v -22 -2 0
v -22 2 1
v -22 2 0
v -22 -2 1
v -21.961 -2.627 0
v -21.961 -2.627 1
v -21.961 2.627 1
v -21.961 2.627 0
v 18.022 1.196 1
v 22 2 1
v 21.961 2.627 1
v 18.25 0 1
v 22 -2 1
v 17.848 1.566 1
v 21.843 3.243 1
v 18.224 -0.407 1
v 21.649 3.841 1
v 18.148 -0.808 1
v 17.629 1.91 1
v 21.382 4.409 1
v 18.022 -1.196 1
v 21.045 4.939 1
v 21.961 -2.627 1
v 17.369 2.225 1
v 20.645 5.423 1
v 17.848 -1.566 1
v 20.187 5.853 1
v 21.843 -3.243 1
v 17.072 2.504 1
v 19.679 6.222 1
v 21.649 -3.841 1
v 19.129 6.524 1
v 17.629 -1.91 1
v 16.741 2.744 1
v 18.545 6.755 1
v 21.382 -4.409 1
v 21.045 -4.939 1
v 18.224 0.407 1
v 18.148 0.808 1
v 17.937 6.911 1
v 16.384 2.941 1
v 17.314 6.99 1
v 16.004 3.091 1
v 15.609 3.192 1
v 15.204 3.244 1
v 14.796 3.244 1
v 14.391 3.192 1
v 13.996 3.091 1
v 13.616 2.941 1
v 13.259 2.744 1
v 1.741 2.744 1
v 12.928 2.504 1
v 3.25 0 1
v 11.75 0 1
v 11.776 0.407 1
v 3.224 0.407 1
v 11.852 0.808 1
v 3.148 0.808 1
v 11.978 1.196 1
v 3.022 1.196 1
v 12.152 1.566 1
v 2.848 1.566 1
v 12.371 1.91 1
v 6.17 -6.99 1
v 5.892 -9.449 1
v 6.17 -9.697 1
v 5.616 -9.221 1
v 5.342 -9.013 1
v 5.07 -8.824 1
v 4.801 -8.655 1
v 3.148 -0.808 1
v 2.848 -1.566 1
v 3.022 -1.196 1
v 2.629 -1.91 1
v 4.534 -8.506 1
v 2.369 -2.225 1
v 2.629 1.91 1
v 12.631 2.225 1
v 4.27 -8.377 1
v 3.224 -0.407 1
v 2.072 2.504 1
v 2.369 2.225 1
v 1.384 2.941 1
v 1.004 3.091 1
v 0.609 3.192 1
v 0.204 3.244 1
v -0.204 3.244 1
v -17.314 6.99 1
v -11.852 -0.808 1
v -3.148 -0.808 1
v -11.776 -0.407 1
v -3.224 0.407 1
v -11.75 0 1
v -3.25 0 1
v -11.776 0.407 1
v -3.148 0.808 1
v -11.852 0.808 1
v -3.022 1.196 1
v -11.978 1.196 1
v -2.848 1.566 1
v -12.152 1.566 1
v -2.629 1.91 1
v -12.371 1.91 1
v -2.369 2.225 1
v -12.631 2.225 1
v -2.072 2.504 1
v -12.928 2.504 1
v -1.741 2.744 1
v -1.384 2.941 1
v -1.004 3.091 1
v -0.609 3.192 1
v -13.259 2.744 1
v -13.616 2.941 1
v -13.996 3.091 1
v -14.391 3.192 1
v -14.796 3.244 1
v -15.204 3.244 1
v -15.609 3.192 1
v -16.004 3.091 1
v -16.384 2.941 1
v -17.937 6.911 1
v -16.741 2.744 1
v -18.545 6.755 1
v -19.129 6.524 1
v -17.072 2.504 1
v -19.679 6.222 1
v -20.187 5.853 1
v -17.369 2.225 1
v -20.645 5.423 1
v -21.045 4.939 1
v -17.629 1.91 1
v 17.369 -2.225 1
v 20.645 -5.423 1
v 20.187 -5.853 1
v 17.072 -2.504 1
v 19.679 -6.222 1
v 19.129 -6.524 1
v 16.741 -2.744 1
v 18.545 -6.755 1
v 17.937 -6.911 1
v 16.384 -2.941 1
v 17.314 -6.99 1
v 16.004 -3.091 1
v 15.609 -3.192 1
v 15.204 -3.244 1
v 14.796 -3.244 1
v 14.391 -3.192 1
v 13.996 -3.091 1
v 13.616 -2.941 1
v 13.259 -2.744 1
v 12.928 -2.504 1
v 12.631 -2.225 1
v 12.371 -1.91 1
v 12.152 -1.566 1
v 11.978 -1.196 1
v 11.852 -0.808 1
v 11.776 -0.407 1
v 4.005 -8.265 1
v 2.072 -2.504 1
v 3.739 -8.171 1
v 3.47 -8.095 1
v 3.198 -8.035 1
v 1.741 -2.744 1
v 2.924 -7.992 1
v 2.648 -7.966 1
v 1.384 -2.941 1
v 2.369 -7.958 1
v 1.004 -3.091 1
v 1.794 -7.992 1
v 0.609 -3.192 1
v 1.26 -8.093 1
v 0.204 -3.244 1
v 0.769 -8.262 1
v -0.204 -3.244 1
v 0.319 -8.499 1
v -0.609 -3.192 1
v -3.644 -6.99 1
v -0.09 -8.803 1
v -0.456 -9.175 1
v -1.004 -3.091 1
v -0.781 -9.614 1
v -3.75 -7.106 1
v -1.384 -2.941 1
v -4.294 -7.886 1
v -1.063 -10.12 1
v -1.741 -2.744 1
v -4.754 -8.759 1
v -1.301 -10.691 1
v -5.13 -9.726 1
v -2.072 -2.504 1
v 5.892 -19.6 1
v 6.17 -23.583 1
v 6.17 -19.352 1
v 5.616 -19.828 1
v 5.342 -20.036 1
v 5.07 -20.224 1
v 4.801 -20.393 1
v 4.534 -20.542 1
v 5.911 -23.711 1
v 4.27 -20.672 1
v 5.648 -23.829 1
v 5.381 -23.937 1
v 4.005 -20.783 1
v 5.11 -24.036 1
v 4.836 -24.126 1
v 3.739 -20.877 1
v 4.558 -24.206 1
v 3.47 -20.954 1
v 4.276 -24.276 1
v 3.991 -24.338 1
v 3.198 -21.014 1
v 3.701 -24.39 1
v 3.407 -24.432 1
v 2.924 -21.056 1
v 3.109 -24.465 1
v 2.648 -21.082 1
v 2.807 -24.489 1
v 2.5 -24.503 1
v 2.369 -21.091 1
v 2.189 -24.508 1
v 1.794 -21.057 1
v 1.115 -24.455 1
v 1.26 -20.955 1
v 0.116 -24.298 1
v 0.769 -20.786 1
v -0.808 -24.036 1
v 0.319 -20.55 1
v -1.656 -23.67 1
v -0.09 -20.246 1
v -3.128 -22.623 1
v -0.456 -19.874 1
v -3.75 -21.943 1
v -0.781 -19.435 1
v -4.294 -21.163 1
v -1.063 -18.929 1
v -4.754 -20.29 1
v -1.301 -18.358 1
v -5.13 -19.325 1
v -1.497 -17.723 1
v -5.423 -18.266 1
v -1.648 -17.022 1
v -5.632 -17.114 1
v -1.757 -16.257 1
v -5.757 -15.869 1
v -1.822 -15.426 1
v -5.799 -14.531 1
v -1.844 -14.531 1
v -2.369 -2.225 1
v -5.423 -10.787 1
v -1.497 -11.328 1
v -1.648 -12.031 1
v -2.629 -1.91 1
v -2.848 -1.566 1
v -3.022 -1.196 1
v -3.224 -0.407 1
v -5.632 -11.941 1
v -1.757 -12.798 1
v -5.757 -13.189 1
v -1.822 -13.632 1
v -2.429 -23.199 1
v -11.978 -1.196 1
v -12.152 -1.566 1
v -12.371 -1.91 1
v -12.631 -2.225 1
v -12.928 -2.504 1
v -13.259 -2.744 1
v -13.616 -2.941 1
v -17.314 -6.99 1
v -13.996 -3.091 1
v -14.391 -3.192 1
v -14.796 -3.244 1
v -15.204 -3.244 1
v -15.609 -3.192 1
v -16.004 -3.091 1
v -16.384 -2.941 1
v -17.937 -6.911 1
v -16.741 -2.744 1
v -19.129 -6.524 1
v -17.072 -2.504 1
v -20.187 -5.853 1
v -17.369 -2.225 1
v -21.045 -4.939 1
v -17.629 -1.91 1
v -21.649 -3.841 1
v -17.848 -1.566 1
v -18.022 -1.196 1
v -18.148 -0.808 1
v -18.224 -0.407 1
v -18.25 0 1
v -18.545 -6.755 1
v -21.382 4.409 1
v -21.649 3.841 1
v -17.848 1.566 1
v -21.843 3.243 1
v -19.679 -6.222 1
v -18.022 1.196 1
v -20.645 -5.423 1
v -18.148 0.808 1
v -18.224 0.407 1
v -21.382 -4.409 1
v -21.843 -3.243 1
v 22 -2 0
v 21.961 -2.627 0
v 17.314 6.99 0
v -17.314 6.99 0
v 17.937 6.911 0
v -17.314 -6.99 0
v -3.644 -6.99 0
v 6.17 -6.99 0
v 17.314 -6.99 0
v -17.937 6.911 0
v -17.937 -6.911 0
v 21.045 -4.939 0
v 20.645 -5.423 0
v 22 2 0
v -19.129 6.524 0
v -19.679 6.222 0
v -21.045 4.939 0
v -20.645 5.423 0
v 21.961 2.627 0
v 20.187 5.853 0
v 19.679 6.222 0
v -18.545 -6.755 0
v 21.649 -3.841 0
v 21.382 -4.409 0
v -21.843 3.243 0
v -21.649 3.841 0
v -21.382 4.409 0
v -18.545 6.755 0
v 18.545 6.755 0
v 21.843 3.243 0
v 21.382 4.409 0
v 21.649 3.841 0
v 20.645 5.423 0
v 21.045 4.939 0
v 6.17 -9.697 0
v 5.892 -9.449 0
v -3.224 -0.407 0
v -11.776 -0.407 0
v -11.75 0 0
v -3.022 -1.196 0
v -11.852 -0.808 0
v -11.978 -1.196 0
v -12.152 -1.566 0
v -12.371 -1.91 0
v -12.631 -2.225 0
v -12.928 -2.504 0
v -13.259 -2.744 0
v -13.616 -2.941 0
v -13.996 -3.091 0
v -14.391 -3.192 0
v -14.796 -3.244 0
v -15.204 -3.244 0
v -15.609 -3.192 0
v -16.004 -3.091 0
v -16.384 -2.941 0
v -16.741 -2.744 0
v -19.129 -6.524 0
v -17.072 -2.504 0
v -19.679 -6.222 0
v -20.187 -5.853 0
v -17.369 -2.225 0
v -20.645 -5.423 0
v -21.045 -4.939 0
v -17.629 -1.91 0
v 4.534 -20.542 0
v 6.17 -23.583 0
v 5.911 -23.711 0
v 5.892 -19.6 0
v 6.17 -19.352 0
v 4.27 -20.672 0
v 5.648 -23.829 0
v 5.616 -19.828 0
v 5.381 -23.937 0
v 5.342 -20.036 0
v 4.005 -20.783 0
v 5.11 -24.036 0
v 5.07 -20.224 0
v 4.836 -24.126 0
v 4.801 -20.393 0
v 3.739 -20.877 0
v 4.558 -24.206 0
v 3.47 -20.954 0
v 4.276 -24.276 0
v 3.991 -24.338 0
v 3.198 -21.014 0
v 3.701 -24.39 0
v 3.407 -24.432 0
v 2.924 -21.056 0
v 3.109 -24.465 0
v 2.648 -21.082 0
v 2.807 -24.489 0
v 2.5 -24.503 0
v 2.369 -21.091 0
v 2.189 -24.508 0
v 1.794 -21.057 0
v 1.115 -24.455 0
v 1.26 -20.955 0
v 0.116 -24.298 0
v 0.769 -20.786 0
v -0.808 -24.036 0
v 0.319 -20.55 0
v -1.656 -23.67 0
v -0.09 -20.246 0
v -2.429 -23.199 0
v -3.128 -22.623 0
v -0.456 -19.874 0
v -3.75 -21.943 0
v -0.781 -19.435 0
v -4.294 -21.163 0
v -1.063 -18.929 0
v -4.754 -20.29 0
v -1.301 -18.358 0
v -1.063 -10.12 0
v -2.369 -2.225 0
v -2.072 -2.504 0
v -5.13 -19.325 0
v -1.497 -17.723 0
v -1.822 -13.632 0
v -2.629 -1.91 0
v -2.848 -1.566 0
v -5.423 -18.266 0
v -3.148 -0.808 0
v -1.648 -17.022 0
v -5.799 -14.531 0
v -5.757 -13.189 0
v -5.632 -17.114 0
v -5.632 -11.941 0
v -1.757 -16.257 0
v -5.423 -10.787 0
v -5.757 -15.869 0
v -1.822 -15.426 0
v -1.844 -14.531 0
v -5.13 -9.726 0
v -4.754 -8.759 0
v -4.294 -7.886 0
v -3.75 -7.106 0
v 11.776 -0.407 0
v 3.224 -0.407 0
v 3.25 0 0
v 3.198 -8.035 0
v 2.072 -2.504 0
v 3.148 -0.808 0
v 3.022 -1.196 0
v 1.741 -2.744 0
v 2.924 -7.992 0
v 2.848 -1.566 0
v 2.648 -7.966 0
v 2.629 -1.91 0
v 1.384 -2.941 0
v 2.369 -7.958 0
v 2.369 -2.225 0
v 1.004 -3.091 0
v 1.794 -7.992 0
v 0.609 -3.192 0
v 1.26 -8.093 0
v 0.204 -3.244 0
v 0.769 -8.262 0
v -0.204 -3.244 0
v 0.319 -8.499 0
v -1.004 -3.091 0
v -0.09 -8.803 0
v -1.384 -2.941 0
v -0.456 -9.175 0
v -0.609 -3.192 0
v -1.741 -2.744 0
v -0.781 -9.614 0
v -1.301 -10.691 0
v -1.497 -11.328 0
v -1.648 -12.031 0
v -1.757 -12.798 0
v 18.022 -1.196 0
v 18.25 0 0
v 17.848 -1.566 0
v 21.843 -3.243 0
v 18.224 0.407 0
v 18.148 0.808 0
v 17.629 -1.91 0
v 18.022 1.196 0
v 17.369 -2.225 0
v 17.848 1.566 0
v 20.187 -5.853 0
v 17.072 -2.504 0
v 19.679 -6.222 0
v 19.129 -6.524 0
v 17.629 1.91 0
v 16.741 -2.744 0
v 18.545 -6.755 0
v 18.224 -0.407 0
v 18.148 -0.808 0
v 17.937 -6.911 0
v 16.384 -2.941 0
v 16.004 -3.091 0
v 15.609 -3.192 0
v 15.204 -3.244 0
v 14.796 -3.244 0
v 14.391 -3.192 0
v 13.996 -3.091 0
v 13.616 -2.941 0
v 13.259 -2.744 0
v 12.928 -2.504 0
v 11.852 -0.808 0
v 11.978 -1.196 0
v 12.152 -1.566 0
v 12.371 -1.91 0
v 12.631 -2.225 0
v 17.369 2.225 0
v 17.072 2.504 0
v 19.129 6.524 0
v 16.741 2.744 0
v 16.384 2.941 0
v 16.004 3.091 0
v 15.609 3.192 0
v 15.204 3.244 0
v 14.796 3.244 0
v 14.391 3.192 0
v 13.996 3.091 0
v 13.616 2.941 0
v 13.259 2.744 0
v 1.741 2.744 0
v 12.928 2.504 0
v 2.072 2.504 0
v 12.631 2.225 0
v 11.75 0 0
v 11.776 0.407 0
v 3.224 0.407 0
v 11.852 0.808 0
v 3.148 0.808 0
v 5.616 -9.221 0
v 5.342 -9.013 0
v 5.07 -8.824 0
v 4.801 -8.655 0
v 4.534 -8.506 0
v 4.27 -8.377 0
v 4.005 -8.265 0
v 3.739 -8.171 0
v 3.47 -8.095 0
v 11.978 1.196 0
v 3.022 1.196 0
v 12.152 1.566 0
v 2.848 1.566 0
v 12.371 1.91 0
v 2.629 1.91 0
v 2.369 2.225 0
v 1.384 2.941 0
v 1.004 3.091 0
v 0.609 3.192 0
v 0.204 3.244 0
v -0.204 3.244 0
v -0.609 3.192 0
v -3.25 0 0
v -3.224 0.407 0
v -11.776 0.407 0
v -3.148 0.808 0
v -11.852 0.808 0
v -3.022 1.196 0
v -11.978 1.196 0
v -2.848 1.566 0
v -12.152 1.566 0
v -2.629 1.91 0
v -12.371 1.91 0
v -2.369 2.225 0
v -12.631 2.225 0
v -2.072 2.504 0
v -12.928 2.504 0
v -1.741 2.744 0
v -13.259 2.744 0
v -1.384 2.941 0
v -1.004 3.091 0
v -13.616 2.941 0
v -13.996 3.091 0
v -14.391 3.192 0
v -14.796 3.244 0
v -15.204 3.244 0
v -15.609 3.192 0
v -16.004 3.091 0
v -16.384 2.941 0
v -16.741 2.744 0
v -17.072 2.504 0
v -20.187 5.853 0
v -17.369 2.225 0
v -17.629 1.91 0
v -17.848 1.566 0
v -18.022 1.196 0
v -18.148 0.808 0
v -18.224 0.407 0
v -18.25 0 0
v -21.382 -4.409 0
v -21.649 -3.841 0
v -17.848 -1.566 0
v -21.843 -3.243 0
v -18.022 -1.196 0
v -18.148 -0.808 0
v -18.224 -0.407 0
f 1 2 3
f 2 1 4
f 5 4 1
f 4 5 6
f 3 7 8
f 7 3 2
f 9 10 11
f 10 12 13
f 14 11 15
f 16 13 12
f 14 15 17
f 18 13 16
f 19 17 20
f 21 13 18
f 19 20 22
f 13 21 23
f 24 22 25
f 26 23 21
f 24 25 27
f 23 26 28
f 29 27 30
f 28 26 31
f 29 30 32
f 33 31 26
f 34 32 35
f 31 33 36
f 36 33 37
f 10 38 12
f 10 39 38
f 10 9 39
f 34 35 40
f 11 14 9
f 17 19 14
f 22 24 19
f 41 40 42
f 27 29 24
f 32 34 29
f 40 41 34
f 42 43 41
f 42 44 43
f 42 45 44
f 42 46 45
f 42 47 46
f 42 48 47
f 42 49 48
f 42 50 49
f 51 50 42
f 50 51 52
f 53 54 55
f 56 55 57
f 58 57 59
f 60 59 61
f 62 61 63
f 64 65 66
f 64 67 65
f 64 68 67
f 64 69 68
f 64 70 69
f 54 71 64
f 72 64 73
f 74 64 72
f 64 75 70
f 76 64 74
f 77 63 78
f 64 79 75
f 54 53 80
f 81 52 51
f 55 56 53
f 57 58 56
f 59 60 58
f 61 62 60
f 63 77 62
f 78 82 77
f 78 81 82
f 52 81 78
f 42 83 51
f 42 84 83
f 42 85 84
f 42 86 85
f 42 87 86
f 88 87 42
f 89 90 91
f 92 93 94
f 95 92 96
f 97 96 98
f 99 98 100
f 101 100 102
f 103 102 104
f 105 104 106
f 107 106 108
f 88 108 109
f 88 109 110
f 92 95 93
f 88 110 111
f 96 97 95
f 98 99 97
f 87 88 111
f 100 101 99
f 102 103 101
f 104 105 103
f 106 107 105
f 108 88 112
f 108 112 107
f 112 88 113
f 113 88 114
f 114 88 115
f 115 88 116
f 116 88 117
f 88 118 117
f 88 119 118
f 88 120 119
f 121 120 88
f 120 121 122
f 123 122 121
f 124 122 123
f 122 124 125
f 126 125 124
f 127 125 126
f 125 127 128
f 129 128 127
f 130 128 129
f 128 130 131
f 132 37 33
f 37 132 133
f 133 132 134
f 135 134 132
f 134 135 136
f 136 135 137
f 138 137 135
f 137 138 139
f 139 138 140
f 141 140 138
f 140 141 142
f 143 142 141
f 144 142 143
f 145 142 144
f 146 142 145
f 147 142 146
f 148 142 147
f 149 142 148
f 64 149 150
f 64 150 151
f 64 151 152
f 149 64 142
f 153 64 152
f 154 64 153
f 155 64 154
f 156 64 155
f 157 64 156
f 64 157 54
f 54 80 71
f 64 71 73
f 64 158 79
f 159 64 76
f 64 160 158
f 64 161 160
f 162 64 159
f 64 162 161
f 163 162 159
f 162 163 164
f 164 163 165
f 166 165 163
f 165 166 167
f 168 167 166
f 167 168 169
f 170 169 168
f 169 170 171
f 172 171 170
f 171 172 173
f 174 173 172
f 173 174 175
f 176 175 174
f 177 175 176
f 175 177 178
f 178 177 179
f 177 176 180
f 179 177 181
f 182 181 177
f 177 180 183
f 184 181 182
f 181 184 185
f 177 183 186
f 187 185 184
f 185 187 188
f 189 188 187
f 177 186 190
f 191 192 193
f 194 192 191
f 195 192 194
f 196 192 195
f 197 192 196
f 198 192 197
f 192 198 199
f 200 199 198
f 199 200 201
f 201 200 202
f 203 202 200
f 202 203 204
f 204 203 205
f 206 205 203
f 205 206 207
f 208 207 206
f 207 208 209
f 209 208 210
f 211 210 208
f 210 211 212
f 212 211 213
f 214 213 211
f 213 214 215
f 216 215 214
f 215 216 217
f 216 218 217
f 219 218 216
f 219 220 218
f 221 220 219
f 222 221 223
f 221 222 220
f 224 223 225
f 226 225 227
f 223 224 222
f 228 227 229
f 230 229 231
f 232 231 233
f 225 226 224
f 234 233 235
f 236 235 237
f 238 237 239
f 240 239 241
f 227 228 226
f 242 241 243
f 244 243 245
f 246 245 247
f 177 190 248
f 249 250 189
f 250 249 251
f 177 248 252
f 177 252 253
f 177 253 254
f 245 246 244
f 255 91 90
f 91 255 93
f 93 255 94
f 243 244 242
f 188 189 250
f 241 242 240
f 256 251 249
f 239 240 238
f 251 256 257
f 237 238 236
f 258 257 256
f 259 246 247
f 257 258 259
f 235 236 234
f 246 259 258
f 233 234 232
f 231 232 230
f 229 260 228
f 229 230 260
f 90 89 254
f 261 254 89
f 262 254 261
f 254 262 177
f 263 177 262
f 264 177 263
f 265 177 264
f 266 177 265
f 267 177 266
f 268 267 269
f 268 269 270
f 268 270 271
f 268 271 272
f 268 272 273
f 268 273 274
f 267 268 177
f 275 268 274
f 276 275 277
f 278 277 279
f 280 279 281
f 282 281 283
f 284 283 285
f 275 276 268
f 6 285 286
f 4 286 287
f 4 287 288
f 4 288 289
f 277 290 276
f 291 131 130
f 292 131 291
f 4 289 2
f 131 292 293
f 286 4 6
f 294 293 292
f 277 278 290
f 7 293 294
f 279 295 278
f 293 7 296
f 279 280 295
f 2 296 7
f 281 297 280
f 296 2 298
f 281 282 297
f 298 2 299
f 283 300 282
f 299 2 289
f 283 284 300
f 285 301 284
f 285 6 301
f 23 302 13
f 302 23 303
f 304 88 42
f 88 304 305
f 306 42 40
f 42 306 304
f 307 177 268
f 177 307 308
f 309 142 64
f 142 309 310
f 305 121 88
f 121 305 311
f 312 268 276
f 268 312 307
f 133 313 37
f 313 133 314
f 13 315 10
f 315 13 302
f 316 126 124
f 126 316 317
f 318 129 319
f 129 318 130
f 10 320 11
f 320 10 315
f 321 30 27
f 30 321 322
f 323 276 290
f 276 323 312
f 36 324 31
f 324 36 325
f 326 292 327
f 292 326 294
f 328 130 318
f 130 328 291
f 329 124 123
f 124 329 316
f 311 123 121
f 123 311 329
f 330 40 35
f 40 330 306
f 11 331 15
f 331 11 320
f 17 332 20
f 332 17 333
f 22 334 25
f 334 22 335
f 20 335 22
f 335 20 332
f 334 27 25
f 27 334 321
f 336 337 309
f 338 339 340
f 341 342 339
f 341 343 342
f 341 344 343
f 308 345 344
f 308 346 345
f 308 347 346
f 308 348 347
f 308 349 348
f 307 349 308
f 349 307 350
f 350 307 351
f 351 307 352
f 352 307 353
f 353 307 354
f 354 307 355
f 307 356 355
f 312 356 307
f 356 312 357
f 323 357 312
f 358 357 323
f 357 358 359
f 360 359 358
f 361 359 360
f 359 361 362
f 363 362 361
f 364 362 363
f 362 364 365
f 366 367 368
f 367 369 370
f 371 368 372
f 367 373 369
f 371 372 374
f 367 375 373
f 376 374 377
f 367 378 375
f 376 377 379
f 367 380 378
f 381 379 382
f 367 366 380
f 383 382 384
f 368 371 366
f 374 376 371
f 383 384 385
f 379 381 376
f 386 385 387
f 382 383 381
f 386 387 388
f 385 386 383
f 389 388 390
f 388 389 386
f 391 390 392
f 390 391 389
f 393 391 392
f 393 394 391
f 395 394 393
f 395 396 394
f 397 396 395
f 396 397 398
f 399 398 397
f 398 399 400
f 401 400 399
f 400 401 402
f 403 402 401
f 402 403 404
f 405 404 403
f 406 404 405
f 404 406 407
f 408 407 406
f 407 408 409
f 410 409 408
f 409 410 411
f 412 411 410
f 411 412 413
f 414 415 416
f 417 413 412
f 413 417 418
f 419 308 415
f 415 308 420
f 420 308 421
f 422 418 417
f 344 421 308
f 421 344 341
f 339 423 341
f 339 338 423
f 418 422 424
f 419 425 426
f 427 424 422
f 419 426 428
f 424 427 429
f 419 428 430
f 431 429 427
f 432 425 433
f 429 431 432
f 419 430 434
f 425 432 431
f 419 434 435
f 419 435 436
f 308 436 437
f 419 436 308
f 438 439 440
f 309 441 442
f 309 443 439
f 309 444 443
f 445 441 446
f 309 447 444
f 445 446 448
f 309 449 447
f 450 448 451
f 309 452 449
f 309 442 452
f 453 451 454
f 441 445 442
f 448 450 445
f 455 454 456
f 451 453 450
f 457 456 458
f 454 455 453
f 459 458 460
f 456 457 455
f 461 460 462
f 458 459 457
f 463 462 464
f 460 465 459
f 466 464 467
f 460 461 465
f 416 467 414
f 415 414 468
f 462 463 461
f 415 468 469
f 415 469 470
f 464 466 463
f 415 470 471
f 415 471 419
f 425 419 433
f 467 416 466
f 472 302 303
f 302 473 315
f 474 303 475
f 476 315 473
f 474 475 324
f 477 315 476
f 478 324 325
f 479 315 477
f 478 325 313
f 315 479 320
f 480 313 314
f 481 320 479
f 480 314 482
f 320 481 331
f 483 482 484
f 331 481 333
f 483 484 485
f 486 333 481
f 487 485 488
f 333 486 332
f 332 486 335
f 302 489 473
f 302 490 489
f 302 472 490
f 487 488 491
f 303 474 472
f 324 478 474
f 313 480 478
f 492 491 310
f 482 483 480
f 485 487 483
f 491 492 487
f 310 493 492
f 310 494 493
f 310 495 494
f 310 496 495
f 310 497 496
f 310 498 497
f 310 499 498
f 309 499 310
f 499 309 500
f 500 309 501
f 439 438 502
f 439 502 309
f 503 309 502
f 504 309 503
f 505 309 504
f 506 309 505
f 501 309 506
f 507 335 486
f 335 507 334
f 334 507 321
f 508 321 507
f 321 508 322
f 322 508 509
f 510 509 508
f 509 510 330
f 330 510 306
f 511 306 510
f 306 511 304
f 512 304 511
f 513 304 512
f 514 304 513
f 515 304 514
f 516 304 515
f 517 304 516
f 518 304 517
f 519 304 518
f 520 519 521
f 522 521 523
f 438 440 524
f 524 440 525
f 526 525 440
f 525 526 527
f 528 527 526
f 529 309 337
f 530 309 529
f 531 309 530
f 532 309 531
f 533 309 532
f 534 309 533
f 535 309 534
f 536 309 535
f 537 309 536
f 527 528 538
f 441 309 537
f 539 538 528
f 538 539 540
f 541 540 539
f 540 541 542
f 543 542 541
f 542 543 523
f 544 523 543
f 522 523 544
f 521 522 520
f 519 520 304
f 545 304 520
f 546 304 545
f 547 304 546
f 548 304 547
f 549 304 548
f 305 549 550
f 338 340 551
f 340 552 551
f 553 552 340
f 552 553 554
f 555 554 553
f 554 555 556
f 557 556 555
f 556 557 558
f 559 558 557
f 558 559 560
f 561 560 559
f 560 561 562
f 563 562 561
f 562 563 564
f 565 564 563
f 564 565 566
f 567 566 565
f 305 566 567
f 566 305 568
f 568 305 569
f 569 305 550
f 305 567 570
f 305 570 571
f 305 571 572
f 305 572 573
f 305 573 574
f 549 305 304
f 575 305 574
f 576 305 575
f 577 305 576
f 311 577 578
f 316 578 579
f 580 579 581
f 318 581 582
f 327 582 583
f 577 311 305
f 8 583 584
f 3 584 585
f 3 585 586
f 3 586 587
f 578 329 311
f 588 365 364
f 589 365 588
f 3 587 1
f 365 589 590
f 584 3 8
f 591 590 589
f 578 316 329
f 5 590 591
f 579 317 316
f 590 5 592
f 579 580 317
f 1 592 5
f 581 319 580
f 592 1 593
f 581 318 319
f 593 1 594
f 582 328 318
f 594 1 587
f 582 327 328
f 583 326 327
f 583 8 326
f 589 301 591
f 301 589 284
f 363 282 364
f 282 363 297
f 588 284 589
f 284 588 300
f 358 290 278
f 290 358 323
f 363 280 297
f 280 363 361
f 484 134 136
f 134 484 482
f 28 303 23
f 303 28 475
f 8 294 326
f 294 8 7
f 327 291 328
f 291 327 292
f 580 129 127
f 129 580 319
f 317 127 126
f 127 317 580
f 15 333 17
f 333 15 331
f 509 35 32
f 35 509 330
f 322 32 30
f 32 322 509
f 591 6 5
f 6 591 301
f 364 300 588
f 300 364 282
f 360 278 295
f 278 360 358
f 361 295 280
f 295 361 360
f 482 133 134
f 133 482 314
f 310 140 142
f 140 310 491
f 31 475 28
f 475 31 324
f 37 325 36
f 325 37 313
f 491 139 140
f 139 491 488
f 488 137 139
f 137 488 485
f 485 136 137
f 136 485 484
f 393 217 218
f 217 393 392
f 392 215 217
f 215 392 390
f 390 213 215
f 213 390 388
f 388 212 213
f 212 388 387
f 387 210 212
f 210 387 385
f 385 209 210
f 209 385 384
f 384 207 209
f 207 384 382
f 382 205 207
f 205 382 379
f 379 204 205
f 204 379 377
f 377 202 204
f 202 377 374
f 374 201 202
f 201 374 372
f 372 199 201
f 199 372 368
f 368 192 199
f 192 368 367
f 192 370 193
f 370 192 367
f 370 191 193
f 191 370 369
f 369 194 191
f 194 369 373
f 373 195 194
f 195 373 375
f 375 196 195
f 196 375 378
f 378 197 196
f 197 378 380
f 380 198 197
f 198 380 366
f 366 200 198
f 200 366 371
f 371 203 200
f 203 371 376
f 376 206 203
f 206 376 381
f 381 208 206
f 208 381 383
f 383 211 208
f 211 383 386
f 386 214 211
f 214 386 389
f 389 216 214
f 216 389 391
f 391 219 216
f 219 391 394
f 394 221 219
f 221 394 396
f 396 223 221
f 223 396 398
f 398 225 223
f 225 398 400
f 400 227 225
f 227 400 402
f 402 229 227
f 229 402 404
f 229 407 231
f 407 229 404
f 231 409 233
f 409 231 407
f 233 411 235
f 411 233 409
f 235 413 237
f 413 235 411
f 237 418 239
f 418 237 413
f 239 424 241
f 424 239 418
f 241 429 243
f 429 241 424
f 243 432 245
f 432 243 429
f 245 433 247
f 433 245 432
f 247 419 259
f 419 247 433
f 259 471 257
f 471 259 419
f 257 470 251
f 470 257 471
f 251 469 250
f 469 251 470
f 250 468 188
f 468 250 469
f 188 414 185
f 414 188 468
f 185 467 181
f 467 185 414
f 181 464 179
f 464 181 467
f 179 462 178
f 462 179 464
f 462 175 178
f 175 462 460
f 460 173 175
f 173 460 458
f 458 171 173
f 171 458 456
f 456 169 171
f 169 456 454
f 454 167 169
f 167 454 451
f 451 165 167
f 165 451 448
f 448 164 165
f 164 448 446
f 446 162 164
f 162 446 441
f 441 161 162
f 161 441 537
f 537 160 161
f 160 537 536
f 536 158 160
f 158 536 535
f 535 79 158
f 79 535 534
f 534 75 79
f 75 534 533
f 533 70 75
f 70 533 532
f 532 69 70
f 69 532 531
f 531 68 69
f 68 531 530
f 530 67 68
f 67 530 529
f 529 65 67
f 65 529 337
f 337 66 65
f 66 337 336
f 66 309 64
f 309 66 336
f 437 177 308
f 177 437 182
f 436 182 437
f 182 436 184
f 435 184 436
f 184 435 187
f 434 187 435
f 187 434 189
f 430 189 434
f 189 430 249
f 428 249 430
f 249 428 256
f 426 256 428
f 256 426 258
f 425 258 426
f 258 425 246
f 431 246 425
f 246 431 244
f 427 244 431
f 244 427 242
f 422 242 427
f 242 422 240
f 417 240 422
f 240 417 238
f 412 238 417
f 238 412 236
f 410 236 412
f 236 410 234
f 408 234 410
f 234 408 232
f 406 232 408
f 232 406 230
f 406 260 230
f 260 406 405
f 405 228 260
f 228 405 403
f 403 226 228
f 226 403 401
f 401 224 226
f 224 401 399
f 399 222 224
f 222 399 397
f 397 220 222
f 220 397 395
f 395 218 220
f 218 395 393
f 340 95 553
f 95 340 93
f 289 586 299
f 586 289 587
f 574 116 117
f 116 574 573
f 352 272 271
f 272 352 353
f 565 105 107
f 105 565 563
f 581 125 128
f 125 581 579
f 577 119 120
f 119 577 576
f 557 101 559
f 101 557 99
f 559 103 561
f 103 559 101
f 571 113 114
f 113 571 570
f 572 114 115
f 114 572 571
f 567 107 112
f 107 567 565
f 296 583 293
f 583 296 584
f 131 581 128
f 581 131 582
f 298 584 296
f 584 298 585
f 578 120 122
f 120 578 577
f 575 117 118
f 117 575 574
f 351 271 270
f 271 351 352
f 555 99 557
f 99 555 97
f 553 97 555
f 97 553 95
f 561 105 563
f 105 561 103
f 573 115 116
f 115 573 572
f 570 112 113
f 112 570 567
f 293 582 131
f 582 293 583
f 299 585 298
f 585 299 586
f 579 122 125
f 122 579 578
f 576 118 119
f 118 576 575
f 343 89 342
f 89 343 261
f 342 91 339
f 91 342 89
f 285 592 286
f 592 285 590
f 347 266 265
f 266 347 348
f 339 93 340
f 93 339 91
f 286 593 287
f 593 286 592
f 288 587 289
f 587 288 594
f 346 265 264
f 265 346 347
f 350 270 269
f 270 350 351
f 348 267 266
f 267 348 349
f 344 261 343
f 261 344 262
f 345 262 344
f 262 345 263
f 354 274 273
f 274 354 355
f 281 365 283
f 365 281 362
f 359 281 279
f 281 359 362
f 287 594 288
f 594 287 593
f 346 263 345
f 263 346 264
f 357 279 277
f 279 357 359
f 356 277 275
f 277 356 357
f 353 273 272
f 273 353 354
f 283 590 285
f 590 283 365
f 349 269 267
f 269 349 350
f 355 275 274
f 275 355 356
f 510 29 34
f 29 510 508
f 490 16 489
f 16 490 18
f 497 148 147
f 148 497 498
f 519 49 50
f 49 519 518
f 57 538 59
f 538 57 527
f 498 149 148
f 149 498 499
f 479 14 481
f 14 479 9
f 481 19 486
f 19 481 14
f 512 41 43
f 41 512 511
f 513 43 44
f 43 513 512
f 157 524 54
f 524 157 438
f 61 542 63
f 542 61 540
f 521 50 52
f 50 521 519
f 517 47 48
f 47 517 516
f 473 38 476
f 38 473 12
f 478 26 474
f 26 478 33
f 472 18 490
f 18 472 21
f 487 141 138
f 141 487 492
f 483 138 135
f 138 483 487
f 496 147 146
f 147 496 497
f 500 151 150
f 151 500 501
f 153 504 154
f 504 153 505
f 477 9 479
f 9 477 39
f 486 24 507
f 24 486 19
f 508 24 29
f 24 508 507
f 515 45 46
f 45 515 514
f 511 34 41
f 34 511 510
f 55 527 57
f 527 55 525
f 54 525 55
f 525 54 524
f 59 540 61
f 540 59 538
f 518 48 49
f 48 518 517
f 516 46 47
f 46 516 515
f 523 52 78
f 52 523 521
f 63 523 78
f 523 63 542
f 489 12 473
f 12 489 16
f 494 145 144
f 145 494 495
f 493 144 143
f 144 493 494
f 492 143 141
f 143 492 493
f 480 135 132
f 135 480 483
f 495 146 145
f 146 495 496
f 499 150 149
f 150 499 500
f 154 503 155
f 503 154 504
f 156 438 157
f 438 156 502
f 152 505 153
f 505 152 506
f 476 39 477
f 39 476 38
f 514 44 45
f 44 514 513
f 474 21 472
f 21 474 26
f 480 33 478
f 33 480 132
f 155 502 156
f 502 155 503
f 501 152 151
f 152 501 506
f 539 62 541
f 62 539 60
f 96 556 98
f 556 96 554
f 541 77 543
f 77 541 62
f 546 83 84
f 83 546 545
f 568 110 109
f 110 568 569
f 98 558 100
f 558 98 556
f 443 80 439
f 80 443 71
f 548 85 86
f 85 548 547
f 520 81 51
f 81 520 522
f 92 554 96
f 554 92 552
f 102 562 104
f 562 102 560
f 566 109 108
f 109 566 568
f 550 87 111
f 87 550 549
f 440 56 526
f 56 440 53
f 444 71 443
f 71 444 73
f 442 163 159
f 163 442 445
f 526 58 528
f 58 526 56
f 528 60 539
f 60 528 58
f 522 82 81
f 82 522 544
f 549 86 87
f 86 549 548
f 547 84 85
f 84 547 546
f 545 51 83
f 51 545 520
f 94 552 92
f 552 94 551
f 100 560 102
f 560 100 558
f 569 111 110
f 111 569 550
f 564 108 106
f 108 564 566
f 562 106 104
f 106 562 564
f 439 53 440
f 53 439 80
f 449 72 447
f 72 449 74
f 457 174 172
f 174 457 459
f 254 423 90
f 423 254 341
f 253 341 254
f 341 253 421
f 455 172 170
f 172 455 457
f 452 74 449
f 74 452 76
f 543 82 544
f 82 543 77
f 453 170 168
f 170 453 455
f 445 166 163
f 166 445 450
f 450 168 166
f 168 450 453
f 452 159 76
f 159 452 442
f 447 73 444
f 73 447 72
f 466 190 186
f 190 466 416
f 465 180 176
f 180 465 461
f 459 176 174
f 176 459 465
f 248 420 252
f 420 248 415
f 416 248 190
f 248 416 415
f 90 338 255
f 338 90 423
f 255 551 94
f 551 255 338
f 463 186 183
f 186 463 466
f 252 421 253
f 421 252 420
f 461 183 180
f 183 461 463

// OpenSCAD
$fn = 50;


difference() {
	union() {
		translate(v = [0, 0, 0]) {
			rotate(a = [0, 0, 0]) {
				hull() {
					translate(v = [-17.0000000000, 2.0000000000, 0]) {
						rotate(a = [0, 0, 0]) {
							translate(v = [0, 0, 0]) {
								rotate(a = [0, 0, 0]) {
									cylinder(h = 1, r = 5);
								}
							}
						}
					}
					translate(v = [17.0000000000, 2.0000000000, 0]) {
						rotate(a = [0, 0, 0]) {
							translate(v = [0, 0, 0]) {
								rotate(a = [0, 0, 0]) {
									cylinder(h = 1, r = 5);
								}
							}
						}
					}
					translate(v = [-17.0000000000, -2.0000000000, 0]) {
						rotate(a = [0, 0, 0]) {
							translate(v = [0, 0, 0]) {
								rotate(a = [0, 0, 0]) {
									cylinder(h = 1, r = 5);
								}
							}
						}
					}
					translate(v = [17.0000000000, -2.0000000000, 0]) {
						rotate(a = [0, 0, 0]) {
							translate(v = [0, 0, 0]) {
								rotate(a = [0, 0, 0]) {
									cylinder(h = 1, r = 5);
								}
							}
						}
					}
				}
			}
		}
		translate(v = [0, -5, 0]) {
			rotate(a = [0, 0, 0]) {
				linear_extrude(height = 1) {
					text(font = "DejaVu Sans Mono:style=Bold", halign = "center", size = 19.0000000000, text = "C", valign = "top");
				}
			}
		}
	}
	union() {
		translate(v = [-15.0000000000, 0.0000000000, -125.0000000000]) {
			rotate(a = [0, 0, 0]) {
				cylinder(h = 250, r = 3.2500000000);
			}
		}
		translate(v = [15.0000000000, 0.0000000000, -125.0000000000]) {
			rotate(a = [0, 0, 0]) {
				cylinder(h = 250, r = 3.2500000000);
			}
		}
		translate(v = [15.0000000000, 0.0000000000, -125.0000000000]) {
			rotate(a = [0, 0, 0]) {
				cylinder(h = 250, r = 3.2500000000);
			}
		}
		translate(v = [0, 0, -125.0000000000]) {
			rotate(a = [0, 0, 0]) {
				cylinder(h = 250, r = 3.2500000000);
			}
		}
	}
}
